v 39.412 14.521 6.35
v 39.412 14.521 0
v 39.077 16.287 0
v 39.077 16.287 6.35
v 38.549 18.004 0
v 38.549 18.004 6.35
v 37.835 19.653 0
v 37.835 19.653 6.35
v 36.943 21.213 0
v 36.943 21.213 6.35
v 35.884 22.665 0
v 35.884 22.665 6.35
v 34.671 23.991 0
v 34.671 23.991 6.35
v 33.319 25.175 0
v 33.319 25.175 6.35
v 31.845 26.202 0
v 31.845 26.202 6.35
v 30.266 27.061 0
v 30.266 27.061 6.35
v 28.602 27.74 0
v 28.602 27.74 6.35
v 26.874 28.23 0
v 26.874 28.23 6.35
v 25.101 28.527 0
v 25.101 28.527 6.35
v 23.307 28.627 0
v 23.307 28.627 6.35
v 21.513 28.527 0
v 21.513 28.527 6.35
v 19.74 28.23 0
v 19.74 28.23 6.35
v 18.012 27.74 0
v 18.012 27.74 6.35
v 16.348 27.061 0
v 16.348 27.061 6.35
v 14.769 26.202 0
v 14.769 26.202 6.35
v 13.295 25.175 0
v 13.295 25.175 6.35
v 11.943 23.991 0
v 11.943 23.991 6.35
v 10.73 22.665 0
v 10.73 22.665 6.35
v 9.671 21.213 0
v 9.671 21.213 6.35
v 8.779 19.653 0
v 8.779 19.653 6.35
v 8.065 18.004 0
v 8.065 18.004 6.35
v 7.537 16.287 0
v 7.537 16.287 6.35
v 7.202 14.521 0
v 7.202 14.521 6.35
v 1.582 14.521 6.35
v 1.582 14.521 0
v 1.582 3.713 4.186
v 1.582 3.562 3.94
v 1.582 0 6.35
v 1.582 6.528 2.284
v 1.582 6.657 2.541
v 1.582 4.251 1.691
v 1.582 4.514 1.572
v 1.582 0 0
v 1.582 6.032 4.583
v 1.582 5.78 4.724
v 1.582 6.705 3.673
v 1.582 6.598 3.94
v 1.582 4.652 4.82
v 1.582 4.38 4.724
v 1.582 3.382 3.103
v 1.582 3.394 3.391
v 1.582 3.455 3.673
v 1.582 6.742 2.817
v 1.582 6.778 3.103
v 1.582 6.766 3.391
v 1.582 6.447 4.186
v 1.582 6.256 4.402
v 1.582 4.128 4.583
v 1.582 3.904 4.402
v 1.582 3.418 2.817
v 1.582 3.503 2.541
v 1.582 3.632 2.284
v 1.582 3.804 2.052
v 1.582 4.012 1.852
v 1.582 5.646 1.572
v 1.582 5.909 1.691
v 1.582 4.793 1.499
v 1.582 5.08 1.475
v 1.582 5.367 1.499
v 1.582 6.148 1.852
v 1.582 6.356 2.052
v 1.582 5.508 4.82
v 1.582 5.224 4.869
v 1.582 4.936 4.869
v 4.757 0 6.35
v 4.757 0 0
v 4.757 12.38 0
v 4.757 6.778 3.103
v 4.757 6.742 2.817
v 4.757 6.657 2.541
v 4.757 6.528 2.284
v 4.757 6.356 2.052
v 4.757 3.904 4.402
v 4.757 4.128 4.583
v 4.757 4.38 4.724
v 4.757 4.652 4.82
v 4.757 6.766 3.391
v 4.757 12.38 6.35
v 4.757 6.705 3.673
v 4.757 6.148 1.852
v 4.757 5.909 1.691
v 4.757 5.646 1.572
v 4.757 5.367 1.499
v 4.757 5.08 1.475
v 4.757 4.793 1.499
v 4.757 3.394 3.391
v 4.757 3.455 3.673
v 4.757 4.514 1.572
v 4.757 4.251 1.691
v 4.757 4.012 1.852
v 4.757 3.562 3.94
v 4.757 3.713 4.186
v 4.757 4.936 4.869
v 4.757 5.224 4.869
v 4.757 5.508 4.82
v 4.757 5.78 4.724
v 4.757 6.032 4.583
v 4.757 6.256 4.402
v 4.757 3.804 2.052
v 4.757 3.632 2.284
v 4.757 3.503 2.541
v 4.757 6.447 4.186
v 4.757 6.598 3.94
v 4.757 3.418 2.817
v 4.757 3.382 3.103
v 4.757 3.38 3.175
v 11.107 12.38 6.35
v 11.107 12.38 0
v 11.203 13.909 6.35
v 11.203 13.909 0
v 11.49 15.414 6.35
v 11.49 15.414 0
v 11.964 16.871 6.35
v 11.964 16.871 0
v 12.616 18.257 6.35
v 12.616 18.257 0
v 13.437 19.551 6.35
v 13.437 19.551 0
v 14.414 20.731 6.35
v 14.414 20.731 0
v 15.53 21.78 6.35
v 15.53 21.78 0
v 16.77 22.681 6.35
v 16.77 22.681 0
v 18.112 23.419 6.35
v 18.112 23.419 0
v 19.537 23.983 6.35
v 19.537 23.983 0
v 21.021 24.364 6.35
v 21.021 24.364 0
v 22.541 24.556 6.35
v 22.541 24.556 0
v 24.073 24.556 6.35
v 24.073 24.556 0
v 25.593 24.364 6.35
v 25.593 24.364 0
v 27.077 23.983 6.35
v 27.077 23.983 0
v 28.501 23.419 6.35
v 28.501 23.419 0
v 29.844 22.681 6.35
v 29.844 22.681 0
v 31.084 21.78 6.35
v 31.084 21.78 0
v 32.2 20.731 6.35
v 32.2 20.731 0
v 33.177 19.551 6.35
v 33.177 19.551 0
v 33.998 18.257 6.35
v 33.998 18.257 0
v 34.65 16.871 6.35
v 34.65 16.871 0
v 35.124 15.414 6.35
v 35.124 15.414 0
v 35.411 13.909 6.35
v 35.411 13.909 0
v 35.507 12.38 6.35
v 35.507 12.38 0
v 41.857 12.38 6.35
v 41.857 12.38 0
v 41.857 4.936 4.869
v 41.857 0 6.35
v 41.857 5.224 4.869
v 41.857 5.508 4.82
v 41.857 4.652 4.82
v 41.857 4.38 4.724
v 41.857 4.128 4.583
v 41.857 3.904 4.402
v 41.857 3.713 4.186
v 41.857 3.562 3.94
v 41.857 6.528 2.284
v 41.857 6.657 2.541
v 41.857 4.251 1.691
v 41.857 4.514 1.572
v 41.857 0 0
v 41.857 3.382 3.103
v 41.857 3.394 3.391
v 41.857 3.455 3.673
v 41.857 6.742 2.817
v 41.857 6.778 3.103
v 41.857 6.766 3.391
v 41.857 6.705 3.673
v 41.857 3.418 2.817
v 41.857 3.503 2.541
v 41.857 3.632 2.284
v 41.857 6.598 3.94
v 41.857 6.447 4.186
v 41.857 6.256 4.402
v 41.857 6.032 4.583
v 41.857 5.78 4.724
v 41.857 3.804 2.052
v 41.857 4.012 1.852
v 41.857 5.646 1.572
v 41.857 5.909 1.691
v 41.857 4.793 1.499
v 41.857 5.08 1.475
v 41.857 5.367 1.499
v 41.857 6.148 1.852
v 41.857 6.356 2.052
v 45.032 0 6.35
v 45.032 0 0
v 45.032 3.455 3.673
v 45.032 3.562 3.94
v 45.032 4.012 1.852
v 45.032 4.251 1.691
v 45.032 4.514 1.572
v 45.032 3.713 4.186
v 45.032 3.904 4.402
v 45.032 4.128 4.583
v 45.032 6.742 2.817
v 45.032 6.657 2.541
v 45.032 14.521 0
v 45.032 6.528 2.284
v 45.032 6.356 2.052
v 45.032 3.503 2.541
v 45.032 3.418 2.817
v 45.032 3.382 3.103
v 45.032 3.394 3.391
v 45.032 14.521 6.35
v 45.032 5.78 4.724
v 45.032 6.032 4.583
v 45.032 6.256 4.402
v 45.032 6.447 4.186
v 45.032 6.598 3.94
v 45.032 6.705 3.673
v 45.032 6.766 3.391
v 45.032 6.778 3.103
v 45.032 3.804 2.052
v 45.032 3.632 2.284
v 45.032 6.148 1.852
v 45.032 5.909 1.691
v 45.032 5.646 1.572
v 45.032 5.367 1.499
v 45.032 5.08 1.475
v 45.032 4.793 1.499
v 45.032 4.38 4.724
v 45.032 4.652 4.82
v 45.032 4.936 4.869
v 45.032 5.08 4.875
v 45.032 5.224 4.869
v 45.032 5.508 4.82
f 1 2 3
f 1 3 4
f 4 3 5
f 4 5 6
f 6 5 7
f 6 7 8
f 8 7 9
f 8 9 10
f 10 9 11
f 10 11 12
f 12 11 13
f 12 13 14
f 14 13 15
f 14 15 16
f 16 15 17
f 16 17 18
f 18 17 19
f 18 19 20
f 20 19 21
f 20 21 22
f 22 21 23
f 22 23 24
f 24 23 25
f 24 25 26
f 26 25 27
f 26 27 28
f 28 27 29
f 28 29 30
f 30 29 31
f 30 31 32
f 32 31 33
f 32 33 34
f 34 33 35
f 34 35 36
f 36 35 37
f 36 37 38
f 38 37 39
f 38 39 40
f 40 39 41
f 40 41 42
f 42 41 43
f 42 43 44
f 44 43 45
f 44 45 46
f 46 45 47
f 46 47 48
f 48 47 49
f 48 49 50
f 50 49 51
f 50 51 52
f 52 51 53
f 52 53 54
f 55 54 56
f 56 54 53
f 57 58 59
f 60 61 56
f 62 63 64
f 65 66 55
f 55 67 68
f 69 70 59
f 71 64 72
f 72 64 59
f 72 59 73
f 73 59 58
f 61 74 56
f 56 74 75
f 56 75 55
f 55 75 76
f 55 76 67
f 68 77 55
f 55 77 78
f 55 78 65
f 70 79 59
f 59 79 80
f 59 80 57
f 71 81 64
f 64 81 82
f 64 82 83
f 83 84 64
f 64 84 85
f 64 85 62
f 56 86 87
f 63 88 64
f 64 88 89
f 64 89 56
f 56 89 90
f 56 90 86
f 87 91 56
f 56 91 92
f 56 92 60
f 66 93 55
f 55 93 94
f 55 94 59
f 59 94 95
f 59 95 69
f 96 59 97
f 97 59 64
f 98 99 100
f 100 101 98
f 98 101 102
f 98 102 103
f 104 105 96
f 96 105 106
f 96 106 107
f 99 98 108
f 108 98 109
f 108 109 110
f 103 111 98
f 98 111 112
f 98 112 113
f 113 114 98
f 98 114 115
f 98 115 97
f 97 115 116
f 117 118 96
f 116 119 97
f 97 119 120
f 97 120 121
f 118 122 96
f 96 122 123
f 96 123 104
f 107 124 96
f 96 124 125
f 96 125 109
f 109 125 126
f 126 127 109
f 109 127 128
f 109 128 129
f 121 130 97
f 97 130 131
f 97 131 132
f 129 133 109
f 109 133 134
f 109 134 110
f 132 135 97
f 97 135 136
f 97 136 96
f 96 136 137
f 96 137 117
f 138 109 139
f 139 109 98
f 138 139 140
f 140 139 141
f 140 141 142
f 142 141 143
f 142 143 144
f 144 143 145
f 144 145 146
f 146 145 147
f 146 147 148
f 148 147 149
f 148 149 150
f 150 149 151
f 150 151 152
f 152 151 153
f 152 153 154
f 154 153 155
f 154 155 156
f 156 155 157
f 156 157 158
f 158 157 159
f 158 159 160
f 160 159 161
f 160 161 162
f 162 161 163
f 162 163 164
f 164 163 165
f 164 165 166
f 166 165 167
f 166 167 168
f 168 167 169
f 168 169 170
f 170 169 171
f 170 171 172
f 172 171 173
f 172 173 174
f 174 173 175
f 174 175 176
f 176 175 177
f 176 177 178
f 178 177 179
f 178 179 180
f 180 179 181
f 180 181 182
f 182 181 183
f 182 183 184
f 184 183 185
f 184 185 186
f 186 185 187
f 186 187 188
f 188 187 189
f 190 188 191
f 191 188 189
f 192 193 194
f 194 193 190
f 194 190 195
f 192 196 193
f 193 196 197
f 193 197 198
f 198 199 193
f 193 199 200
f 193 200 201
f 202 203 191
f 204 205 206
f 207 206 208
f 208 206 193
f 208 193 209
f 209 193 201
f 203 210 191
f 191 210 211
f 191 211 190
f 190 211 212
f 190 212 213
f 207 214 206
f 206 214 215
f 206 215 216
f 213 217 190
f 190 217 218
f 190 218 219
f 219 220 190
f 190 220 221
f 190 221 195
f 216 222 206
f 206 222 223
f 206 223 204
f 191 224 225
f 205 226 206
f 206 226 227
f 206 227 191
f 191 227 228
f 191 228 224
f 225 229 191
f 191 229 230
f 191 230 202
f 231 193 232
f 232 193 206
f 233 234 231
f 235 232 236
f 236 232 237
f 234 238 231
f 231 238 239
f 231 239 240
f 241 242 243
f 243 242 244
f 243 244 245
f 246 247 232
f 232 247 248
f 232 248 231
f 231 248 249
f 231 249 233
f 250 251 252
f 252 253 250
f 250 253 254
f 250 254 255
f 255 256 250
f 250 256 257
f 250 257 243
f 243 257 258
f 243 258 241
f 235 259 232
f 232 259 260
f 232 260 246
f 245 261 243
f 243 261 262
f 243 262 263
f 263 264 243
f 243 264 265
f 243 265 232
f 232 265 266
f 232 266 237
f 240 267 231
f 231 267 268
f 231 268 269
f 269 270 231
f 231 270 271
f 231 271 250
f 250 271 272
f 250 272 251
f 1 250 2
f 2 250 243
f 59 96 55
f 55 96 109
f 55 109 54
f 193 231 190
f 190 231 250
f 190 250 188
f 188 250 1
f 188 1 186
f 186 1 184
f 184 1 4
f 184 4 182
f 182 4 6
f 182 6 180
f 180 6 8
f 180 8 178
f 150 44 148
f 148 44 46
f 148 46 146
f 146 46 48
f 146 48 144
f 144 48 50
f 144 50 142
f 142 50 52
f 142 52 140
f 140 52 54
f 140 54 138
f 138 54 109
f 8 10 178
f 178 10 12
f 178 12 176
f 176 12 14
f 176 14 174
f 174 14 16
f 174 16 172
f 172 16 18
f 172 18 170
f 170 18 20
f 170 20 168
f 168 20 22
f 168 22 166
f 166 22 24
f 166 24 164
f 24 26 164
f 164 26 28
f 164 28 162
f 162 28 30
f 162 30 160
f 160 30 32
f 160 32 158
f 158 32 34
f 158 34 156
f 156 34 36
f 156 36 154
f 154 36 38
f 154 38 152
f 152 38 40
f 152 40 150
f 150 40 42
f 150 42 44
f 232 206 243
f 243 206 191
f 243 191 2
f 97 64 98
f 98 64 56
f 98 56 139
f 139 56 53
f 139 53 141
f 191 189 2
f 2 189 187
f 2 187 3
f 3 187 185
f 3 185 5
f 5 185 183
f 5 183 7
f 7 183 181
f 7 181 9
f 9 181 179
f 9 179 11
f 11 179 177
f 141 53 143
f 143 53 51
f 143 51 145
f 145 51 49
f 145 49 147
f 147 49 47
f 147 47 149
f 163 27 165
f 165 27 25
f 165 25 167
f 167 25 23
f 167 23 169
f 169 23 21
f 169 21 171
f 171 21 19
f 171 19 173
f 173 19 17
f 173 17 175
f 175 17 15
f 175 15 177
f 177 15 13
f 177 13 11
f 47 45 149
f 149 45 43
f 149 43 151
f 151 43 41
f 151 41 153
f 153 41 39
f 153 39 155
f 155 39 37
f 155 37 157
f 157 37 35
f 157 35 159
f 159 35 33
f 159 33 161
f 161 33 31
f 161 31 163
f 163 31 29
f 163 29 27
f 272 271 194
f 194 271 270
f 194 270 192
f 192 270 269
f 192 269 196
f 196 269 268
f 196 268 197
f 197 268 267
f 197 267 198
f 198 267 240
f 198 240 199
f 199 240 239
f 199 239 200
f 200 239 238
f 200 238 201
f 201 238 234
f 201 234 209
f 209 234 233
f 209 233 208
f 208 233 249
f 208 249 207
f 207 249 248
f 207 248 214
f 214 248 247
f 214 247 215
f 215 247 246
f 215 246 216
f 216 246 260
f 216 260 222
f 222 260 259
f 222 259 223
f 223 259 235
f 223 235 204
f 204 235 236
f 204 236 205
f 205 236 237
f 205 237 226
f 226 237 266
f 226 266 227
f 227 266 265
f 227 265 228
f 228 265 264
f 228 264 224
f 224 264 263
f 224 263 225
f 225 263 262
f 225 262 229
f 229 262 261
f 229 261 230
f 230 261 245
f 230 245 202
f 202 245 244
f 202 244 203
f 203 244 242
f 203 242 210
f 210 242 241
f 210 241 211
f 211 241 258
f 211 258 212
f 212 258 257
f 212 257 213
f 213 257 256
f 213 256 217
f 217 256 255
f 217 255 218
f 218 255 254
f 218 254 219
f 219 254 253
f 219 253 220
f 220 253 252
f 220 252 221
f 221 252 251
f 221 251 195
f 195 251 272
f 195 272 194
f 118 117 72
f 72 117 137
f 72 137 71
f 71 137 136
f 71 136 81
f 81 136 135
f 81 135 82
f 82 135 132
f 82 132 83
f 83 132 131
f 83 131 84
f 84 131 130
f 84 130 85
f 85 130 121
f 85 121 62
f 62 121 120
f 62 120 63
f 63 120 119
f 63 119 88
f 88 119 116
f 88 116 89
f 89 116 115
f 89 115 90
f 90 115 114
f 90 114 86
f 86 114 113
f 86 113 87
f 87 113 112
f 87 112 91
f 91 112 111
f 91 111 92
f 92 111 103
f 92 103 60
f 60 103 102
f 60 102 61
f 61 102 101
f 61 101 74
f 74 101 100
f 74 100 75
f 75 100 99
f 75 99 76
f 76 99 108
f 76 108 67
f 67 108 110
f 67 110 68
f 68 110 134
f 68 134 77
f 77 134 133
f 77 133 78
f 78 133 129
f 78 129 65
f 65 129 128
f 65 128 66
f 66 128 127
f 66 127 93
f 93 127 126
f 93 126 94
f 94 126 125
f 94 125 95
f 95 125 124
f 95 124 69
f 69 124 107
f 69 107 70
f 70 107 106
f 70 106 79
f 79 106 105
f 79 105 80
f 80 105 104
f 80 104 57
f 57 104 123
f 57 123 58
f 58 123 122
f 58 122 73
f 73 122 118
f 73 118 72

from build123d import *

# Parameters (mm, degrees)
BOSS_EXTRUDE1_DEPTH     = 6.35
CUT_EXTRUDE1_DEPTH      = 53.418642591
CUT_EXTRUDE1_DEPTH_BACK = 53.418642591
SKETCH2_R               = 1.7


with BuildPart() as part:
    # Sketch1 → Boss-Extrude1 (new body)
    with BuildSketch(Plane.XY):
        with BuildLine():
            Line((39.411995156, 14.521042354), (45.031969649, 14.521042354))
            Line((45.031969649, 14.521042354), (45.031969649, 0))
            Line((45.031969649, 0), (41.856969649, 0))
            Line((41.856969649, 0), (41.856969649, 12.38))
            Line((41.856969649, 12.38), (35.506969649, 12.38))
            ThreePointArc((35.506969649, 12.38), (23.306969665, 24.579999984), (11.106969681, 12.38))
            Line((11.106969681, 12.38), (4.756969681, 12.38))
            Line((4.756969681, 12.38), (4.756969681, 0))
            Line((4.756969681, 0), (1.581969681, 0))
            Line((1.581969681, 0), (1.581969681, 14.521042354))
            Line((1.581969681, 14.521042354), (7.201944173, 14.521042354))
            ThreePointArc((7.201944173, 14.521042354), (23.306969665, 28.626719929), (39.411995156, 14.521042354))
        make_face()
    extrude(amount=BOSS_EXTRUDE1_DEPTH)

    # Sketch2 → Cut-Extrude1 (cut, two sides: drawn at the far end of the back side and taken through both)
    with BuildSketch(Plane(origin=(45.031969649, 0, 0), x_dir=(0, 0, -1), z_dir=(1, 0, 0)).offset(-CUT_EXTRUDE1_DEPTH_BACK)):
        with Locations((-3.175, 5.08)):
            Circle(SKETCH2_R)
    extrude(amount=CUT_EXTRUDE1_DEPTH + CUT_EXTRUDE1_DEPTH_BACK, mode=Mode.SUBTRACT)


solid = part.part
